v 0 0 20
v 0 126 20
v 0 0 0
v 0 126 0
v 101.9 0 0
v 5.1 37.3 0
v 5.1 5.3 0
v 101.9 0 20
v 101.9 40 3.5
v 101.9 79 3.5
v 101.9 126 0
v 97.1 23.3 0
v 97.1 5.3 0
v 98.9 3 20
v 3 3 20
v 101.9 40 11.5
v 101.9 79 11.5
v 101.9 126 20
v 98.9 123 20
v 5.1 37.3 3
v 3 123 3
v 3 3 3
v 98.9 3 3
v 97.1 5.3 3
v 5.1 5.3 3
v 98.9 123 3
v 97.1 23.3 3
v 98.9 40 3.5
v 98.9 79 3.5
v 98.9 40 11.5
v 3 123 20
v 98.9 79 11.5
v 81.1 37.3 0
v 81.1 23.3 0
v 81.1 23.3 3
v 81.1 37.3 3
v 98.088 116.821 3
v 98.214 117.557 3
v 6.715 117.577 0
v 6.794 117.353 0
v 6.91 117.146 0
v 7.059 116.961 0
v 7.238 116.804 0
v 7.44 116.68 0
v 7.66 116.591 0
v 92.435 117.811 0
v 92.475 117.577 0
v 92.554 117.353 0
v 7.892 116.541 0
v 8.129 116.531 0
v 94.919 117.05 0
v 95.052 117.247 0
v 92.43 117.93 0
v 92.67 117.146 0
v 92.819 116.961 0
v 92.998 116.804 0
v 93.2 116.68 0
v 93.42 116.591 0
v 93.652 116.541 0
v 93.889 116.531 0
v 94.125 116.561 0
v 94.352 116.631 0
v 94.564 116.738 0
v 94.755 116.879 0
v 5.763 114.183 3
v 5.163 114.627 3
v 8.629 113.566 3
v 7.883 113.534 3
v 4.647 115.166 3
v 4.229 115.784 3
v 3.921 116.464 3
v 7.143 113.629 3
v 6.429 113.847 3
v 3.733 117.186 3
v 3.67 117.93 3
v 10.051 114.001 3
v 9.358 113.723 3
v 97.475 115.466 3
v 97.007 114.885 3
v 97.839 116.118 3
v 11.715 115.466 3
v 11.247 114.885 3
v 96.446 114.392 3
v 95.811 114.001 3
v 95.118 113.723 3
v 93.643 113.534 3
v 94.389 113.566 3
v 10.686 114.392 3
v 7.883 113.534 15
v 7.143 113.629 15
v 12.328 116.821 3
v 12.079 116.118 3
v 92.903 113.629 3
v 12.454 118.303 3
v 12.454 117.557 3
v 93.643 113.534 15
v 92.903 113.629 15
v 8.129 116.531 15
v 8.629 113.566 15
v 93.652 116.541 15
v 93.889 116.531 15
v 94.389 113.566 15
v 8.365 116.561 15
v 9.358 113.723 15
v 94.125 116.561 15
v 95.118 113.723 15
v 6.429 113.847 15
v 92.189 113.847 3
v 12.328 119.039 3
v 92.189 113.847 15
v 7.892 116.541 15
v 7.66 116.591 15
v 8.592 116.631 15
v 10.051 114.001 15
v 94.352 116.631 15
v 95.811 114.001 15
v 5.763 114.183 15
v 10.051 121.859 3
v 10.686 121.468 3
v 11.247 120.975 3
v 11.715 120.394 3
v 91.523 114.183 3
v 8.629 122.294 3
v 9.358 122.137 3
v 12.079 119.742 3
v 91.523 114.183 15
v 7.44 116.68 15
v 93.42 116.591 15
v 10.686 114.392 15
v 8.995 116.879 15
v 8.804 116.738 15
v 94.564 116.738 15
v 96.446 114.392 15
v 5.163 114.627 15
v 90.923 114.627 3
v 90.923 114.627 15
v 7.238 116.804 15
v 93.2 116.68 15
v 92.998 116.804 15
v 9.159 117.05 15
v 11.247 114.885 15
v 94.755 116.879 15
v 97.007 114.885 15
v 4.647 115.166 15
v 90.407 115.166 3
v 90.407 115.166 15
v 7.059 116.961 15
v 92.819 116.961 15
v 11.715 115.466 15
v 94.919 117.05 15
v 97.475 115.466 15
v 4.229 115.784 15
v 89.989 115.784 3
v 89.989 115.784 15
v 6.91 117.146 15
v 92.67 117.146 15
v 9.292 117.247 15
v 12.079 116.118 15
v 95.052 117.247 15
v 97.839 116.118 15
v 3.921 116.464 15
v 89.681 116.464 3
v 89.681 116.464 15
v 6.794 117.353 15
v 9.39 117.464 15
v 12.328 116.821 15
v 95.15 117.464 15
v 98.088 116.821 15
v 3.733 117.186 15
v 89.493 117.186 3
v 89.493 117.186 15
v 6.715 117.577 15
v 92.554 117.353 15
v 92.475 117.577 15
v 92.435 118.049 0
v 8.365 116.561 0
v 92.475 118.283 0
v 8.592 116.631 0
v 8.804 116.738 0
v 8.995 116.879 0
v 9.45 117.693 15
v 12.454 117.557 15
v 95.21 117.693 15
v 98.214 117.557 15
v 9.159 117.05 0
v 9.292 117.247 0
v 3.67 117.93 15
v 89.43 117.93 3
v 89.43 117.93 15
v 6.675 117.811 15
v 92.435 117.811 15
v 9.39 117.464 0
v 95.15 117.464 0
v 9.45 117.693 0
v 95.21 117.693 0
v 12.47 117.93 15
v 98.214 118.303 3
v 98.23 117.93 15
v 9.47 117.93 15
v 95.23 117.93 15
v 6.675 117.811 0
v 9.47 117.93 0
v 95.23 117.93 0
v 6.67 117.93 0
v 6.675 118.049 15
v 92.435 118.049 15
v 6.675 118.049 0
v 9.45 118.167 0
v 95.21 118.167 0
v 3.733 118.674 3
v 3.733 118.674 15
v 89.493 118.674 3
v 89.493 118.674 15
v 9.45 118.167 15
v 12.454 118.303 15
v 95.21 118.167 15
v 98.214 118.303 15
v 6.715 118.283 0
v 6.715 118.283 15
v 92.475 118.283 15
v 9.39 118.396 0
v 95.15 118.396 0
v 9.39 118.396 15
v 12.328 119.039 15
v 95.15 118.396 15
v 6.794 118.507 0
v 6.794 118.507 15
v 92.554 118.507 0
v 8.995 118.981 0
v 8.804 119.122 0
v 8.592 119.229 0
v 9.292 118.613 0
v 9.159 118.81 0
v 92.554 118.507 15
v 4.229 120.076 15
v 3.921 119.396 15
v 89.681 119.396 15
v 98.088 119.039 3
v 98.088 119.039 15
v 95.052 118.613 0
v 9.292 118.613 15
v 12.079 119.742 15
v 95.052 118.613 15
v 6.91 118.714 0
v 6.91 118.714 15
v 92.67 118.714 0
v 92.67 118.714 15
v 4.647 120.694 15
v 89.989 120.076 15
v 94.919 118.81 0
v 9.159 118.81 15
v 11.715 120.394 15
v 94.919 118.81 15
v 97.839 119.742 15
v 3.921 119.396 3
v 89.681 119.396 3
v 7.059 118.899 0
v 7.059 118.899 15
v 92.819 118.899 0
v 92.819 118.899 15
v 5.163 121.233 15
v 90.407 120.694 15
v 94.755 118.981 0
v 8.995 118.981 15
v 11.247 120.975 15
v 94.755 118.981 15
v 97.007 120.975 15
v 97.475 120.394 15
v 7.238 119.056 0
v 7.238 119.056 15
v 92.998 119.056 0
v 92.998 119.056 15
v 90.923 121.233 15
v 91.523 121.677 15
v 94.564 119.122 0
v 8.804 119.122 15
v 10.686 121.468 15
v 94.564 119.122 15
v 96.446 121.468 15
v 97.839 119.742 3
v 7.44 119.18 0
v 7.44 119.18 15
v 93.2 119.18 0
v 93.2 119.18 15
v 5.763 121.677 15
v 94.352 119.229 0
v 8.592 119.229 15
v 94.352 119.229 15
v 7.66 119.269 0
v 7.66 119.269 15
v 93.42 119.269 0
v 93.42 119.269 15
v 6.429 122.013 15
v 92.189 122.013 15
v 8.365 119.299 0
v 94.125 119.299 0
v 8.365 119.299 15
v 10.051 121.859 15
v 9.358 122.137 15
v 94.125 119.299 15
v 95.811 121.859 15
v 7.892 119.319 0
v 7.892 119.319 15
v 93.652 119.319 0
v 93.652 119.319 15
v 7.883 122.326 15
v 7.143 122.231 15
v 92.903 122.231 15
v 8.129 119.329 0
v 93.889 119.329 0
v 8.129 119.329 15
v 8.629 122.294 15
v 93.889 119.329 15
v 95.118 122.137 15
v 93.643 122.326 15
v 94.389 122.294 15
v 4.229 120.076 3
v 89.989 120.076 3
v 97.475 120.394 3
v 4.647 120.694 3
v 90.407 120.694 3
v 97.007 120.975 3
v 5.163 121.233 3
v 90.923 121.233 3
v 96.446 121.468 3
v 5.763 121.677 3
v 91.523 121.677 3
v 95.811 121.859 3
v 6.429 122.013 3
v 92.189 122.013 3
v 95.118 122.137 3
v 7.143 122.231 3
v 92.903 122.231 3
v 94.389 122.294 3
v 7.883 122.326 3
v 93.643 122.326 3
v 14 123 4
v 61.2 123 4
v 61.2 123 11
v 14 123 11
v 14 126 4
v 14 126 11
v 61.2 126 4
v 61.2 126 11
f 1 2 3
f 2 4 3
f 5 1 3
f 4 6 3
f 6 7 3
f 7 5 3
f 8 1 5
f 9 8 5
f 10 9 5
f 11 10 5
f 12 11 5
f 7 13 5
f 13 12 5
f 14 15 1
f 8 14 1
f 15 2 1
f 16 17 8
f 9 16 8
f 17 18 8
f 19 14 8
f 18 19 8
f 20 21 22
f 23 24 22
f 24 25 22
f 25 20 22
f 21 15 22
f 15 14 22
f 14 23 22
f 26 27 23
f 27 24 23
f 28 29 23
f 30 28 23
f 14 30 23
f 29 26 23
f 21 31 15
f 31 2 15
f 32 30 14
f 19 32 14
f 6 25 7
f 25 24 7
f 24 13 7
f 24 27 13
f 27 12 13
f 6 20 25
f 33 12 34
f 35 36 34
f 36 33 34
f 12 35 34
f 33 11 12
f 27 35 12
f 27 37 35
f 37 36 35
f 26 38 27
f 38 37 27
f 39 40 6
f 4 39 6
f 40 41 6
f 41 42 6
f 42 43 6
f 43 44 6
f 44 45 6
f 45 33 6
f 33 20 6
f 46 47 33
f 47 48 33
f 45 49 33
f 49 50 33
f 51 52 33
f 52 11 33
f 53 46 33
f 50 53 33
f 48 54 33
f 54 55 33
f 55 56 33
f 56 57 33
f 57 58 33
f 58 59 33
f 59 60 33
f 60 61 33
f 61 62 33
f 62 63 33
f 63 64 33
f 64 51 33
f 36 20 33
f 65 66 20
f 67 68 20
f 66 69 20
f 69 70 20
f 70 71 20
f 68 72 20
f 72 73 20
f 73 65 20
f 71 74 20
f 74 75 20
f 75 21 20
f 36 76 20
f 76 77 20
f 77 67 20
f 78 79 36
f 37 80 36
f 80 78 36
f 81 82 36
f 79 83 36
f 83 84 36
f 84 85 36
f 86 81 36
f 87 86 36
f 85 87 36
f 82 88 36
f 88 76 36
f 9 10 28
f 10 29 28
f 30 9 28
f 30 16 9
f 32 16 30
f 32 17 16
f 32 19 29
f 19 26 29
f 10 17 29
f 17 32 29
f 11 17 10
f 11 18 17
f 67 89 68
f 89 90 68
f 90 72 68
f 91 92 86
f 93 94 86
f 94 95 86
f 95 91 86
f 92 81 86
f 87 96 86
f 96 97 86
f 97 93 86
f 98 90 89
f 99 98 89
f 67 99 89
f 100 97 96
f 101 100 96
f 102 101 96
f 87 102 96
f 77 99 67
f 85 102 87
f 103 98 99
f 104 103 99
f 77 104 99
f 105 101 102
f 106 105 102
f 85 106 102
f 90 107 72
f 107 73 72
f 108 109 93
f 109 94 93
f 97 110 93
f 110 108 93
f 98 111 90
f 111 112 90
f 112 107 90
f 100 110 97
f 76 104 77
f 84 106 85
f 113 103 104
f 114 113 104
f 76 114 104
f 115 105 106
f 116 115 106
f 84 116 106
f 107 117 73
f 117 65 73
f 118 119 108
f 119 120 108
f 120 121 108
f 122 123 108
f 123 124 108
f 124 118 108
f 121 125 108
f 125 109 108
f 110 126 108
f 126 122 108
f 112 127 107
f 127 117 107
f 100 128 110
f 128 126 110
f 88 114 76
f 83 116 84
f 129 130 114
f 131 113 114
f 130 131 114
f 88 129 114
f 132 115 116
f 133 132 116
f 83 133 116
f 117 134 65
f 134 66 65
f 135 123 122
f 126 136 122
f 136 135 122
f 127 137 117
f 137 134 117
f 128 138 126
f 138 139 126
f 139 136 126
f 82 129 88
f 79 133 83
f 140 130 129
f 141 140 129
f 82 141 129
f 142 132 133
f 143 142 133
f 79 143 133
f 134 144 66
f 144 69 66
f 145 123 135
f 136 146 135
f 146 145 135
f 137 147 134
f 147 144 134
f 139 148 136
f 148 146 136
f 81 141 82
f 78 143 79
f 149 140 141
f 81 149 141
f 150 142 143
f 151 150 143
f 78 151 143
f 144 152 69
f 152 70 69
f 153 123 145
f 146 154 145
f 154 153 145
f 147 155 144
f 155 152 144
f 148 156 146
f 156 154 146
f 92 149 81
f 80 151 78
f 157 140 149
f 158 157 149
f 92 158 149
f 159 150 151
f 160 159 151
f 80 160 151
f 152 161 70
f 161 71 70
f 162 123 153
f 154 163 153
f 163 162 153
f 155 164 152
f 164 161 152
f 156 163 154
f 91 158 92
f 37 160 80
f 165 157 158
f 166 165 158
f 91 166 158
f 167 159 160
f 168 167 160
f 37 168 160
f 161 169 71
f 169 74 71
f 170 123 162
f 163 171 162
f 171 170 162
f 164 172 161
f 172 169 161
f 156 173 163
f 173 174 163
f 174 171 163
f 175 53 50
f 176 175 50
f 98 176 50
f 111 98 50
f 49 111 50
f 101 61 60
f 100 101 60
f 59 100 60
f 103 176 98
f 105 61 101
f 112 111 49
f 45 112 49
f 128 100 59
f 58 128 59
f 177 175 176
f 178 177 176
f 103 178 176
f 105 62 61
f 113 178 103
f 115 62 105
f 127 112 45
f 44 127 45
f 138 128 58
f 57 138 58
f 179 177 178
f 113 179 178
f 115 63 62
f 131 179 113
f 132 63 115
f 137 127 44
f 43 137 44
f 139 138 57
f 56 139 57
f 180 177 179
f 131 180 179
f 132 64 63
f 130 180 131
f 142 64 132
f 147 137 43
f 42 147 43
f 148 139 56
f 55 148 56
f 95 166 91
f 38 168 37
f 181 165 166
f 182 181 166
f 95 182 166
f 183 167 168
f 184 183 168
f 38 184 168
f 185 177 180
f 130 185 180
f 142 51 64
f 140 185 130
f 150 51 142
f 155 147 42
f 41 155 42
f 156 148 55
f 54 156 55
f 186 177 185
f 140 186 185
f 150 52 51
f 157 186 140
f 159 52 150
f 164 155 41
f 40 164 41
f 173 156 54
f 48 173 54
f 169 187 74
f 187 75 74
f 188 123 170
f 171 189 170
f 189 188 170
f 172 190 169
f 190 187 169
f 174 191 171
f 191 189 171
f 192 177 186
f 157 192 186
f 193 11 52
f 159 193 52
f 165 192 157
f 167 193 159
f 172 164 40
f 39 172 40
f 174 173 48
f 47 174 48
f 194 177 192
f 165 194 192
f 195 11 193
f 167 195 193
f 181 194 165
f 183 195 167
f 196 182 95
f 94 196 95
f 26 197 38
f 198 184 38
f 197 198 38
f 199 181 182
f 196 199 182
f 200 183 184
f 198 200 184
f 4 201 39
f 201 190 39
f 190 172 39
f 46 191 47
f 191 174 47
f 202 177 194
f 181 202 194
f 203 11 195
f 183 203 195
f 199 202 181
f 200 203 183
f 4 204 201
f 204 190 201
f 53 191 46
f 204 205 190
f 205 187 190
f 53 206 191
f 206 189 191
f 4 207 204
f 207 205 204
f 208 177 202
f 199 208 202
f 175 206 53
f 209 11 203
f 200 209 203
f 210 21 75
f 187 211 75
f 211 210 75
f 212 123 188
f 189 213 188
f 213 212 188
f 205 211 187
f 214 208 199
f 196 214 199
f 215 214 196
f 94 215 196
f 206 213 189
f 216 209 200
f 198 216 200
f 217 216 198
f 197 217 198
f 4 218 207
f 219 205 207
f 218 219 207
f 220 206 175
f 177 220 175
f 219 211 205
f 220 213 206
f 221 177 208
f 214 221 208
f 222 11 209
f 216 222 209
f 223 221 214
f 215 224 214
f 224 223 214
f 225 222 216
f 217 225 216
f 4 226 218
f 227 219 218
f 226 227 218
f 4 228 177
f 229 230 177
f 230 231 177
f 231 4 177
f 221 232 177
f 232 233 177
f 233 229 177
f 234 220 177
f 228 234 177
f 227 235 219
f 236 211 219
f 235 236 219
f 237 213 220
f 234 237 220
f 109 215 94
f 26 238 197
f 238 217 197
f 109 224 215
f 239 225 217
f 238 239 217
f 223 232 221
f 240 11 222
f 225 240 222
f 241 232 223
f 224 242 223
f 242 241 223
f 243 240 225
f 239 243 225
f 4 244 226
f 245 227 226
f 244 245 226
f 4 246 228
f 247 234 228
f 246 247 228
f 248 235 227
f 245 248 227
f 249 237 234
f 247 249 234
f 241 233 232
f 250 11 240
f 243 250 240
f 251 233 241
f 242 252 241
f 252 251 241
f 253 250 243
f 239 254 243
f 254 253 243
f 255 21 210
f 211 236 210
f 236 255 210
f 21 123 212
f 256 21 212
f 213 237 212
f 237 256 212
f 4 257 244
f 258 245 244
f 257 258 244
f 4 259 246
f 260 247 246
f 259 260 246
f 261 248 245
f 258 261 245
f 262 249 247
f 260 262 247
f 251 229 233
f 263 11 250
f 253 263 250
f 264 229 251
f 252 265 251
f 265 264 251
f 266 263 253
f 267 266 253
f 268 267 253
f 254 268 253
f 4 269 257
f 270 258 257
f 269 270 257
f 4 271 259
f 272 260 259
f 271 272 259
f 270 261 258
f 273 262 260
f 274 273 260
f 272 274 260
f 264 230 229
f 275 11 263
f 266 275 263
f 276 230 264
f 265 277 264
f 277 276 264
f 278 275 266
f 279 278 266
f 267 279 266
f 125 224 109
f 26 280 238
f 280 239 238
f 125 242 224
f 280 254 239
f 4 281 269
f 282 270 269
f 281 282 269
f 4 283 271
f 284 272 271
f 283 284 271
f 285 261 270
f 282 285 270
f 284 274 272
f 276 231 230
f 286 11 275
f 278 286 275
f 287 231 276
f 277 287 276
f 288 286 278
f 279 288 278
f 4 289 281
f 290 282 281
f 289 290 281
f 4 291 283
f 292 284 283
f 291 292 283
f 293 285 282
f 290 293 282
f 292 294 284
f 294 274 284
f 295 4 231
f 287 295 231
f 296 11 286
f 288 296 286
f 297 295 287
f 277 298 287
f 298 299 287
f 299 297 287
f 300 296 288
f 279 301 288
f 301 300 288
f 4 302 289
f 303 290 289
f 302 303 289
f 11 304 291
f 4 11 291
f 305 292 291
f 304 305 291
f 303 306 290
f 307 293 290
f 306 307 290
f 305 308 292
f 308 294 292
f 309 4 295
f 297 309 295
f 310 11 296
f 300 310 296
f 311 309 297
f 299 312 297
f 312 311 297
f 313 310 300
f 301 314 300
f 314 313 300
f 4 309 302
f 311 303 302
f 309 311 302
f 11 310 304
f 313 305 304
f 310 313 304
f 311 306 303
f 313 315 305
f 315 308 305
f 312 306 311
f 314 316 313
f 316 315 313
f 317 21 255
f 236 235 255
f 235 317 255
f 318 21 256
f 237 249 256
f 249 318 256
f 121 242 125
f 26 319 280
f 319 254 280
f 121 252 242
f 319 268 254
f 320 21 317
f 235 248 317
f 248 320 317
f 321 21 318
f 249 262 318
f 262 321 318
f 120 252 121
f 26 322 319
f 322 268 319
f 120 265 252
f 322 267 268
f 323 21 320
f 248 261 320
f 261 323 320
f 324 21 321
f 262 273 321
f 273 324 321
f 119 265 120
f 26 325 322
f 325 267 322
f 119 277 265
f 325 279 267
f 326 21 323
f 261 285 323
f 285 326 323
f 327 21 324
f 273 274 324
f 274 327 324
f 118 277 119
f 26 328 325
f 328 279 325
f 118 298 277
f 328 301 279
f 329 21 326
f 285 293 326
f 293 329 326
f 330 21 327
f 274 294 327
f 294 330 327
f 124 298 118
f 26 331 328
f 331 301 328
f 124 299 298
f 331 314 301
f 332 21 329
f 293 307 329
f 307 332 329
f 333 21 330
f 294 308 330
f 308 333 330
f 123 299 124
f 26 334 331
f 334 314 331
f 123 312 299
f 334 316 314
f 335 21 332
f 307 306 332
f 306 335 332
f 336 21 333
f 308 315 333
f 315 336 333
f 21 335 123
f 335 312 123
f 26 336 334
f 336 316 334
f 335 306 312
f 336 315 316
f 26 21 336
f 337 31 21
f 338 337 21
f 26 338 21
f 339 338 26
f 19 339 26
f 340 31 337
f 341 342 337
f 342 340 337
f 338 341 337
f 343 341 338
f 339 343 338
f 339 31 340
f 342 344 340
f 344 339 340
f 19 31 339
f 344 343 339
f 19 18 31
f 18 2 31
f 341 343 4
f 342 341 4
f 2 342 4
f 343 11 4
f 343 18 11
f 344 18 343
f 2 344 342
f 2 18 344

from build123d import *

# Parameters (mm, degrees)
CROQUIS1_W              = 101.9
CROQUIS1_H              = 126
SALIENTE_EXTRUIR1_DEPTH = 15
VACIADO1_T              = -3
CORTAR_EXTRUIR1_DEPTH   = 15
CROQUIS3_W              = 8
CROQUIS3_H              = 39
CORTAR_EXTRUIR2_DEPTH   = 15
CROQUIS4_W              = 47.2
CROQUIS4_H              = 7
CORTAR_EXTRUIR3_DEPTH   = 15
CROQUIS5_R              = 1.4
CORTAR_EXTRUIR4_DEPTH   = 15
SALIENTE_EXTRUIR2_START = 12
CROQUIS6_R              = 4.4
CROQUIS6_R_2            = 1.4
SALIENTE_EXTRUIR2_DEPTH = 12
CROQUIS7_W              = 101.9
CROQUIS7_H              = 126
CROQUIS7_W_2            = 95.9
CROQUIS7_H_2            = 120
SALIENTE_EXTRUIR3_DEPTH = 5


with BuildPart() as part:
    # Croquis1 → Saliente-Extruir1 (new body)
    with BuildSketch(Plane.XY):
        with Locations((50.95, 63)):
            Rectangle(CROQUIS1_W, CROQUIS1_H)
    extrude(amount=SALIENTE_EXTRUIR1_DEPTH)

    # Vaciado1
    vaciado1_openings = [part.faces().sort_by_distance(p)[0] for p in [
        (50.95, 63, 15),
    ]]
    offset(amount=VACIADO1_T, openings=vaciado1_openings, kind=Kind.INTERSECTION)

    # Croquis2 → Cortar-Extruir1 (cut)
    with BuildSketch(Plane.XY.offset(3)):
        Polygon((5.1, 37.3), (81.1, 37.3), (81.1, 23.3), (97.1, 23.3), (97.1, 5.3), (5.1, 5.3), align=None)
    extrude(amount=-CORTAR_EXTRUIR1_DEPTH, mode=Mode.SUBTRACT)

    # Croquis3 → Cortar-Extruir2 (cut)
    with BuildSketch(Plane(origin=(101.9, 0, 0), x_dir=(0, 0, -1), z_dir=(1, 0, 0))):
        with Locations((-7.5, 59.5)):
            Rectangle(CROQUIS3_W, CROQUIS3_H)
    extrude(amount=-CORTAR_EXTRUIR2_DEPTH, mode=Mode.SUBTRACT)

    # Croquis4 → Cortar-Extruir3 (cut)
    with BuildSketch(Plane(origin=(0, 126, 0), x_dir=(1, 0, 0), z_dir=(0, 1, 0))):
        with Locations((37.6, -7.5)):
            Rectangle(CROQUIS4_W, CROQUIS4_H)
    extrude(amount=-CORTAR_EXTRUIR3_DEPTH, mode=Mode.SUBTRACT)

    # Croquis5 → Cortar-Extruir4 (cut)
    with BuildSketch(Plane.XY.offset(3)):
        with Locations((8.07, 117.93)):
            Circle(CROQUIS5_R)
        with Locations((93.83, 117.93)):
            Circle(CROQUIS5_R)
    extrude(amount=-CORTAR_EXTRUIR4_DEPTH, mode=Mode.SUBTRACT)

    # Croquis6 → Saliente-Extruir2 (add)
    # profile 1 of 2: a face of its own
    with BuildSketch(Plane.XY.offset(3).offset(SALIENTE_EXTRUIR2_START)):
        with Locations(Location((93.83, 117.93, 0), (0, 0, 180))):
            Circle(CROQUIS6_R)
        with Locations((93.83, 117.93)):
            Circle(CROQUIS6_R_2, mode=Mode.SUBTRACT)
    # profile 2 of 2: a face of its own
    with BuildSketch(Plane.XY.offset(3).offset(SALIENTE_EXTRUIR2_START)):
        with Locations(Location((8.07, 117.93, 0), (0, 0, 180))):
            Circle(CROQUIS6_R)
        with Locations((8.07, 117.93)):
            Circle(CROQUIS6_R_2, mode=Mode.SUBTRACT)
    extrude(amount=-SALIENTE_EXTRUIR2_DEPTH)

    # Croquis7 → Saliente-Extruir3 (add)
    with BuildSketch(Plane.XY.offset(15)):
        with Locations((50.95, 63)):
            Rectangle(CROQUIS7_W, CROQUIS7_H)
        with Locations((50.95, 63)):
            Rectangle(CROQUIS7_W_2, CROQUIS7_H_2, mode=Mode.SUBTRACT)
    extrude(amount=SALIENTE_EXTRUIR3_DEPTH)


solid = part.part
